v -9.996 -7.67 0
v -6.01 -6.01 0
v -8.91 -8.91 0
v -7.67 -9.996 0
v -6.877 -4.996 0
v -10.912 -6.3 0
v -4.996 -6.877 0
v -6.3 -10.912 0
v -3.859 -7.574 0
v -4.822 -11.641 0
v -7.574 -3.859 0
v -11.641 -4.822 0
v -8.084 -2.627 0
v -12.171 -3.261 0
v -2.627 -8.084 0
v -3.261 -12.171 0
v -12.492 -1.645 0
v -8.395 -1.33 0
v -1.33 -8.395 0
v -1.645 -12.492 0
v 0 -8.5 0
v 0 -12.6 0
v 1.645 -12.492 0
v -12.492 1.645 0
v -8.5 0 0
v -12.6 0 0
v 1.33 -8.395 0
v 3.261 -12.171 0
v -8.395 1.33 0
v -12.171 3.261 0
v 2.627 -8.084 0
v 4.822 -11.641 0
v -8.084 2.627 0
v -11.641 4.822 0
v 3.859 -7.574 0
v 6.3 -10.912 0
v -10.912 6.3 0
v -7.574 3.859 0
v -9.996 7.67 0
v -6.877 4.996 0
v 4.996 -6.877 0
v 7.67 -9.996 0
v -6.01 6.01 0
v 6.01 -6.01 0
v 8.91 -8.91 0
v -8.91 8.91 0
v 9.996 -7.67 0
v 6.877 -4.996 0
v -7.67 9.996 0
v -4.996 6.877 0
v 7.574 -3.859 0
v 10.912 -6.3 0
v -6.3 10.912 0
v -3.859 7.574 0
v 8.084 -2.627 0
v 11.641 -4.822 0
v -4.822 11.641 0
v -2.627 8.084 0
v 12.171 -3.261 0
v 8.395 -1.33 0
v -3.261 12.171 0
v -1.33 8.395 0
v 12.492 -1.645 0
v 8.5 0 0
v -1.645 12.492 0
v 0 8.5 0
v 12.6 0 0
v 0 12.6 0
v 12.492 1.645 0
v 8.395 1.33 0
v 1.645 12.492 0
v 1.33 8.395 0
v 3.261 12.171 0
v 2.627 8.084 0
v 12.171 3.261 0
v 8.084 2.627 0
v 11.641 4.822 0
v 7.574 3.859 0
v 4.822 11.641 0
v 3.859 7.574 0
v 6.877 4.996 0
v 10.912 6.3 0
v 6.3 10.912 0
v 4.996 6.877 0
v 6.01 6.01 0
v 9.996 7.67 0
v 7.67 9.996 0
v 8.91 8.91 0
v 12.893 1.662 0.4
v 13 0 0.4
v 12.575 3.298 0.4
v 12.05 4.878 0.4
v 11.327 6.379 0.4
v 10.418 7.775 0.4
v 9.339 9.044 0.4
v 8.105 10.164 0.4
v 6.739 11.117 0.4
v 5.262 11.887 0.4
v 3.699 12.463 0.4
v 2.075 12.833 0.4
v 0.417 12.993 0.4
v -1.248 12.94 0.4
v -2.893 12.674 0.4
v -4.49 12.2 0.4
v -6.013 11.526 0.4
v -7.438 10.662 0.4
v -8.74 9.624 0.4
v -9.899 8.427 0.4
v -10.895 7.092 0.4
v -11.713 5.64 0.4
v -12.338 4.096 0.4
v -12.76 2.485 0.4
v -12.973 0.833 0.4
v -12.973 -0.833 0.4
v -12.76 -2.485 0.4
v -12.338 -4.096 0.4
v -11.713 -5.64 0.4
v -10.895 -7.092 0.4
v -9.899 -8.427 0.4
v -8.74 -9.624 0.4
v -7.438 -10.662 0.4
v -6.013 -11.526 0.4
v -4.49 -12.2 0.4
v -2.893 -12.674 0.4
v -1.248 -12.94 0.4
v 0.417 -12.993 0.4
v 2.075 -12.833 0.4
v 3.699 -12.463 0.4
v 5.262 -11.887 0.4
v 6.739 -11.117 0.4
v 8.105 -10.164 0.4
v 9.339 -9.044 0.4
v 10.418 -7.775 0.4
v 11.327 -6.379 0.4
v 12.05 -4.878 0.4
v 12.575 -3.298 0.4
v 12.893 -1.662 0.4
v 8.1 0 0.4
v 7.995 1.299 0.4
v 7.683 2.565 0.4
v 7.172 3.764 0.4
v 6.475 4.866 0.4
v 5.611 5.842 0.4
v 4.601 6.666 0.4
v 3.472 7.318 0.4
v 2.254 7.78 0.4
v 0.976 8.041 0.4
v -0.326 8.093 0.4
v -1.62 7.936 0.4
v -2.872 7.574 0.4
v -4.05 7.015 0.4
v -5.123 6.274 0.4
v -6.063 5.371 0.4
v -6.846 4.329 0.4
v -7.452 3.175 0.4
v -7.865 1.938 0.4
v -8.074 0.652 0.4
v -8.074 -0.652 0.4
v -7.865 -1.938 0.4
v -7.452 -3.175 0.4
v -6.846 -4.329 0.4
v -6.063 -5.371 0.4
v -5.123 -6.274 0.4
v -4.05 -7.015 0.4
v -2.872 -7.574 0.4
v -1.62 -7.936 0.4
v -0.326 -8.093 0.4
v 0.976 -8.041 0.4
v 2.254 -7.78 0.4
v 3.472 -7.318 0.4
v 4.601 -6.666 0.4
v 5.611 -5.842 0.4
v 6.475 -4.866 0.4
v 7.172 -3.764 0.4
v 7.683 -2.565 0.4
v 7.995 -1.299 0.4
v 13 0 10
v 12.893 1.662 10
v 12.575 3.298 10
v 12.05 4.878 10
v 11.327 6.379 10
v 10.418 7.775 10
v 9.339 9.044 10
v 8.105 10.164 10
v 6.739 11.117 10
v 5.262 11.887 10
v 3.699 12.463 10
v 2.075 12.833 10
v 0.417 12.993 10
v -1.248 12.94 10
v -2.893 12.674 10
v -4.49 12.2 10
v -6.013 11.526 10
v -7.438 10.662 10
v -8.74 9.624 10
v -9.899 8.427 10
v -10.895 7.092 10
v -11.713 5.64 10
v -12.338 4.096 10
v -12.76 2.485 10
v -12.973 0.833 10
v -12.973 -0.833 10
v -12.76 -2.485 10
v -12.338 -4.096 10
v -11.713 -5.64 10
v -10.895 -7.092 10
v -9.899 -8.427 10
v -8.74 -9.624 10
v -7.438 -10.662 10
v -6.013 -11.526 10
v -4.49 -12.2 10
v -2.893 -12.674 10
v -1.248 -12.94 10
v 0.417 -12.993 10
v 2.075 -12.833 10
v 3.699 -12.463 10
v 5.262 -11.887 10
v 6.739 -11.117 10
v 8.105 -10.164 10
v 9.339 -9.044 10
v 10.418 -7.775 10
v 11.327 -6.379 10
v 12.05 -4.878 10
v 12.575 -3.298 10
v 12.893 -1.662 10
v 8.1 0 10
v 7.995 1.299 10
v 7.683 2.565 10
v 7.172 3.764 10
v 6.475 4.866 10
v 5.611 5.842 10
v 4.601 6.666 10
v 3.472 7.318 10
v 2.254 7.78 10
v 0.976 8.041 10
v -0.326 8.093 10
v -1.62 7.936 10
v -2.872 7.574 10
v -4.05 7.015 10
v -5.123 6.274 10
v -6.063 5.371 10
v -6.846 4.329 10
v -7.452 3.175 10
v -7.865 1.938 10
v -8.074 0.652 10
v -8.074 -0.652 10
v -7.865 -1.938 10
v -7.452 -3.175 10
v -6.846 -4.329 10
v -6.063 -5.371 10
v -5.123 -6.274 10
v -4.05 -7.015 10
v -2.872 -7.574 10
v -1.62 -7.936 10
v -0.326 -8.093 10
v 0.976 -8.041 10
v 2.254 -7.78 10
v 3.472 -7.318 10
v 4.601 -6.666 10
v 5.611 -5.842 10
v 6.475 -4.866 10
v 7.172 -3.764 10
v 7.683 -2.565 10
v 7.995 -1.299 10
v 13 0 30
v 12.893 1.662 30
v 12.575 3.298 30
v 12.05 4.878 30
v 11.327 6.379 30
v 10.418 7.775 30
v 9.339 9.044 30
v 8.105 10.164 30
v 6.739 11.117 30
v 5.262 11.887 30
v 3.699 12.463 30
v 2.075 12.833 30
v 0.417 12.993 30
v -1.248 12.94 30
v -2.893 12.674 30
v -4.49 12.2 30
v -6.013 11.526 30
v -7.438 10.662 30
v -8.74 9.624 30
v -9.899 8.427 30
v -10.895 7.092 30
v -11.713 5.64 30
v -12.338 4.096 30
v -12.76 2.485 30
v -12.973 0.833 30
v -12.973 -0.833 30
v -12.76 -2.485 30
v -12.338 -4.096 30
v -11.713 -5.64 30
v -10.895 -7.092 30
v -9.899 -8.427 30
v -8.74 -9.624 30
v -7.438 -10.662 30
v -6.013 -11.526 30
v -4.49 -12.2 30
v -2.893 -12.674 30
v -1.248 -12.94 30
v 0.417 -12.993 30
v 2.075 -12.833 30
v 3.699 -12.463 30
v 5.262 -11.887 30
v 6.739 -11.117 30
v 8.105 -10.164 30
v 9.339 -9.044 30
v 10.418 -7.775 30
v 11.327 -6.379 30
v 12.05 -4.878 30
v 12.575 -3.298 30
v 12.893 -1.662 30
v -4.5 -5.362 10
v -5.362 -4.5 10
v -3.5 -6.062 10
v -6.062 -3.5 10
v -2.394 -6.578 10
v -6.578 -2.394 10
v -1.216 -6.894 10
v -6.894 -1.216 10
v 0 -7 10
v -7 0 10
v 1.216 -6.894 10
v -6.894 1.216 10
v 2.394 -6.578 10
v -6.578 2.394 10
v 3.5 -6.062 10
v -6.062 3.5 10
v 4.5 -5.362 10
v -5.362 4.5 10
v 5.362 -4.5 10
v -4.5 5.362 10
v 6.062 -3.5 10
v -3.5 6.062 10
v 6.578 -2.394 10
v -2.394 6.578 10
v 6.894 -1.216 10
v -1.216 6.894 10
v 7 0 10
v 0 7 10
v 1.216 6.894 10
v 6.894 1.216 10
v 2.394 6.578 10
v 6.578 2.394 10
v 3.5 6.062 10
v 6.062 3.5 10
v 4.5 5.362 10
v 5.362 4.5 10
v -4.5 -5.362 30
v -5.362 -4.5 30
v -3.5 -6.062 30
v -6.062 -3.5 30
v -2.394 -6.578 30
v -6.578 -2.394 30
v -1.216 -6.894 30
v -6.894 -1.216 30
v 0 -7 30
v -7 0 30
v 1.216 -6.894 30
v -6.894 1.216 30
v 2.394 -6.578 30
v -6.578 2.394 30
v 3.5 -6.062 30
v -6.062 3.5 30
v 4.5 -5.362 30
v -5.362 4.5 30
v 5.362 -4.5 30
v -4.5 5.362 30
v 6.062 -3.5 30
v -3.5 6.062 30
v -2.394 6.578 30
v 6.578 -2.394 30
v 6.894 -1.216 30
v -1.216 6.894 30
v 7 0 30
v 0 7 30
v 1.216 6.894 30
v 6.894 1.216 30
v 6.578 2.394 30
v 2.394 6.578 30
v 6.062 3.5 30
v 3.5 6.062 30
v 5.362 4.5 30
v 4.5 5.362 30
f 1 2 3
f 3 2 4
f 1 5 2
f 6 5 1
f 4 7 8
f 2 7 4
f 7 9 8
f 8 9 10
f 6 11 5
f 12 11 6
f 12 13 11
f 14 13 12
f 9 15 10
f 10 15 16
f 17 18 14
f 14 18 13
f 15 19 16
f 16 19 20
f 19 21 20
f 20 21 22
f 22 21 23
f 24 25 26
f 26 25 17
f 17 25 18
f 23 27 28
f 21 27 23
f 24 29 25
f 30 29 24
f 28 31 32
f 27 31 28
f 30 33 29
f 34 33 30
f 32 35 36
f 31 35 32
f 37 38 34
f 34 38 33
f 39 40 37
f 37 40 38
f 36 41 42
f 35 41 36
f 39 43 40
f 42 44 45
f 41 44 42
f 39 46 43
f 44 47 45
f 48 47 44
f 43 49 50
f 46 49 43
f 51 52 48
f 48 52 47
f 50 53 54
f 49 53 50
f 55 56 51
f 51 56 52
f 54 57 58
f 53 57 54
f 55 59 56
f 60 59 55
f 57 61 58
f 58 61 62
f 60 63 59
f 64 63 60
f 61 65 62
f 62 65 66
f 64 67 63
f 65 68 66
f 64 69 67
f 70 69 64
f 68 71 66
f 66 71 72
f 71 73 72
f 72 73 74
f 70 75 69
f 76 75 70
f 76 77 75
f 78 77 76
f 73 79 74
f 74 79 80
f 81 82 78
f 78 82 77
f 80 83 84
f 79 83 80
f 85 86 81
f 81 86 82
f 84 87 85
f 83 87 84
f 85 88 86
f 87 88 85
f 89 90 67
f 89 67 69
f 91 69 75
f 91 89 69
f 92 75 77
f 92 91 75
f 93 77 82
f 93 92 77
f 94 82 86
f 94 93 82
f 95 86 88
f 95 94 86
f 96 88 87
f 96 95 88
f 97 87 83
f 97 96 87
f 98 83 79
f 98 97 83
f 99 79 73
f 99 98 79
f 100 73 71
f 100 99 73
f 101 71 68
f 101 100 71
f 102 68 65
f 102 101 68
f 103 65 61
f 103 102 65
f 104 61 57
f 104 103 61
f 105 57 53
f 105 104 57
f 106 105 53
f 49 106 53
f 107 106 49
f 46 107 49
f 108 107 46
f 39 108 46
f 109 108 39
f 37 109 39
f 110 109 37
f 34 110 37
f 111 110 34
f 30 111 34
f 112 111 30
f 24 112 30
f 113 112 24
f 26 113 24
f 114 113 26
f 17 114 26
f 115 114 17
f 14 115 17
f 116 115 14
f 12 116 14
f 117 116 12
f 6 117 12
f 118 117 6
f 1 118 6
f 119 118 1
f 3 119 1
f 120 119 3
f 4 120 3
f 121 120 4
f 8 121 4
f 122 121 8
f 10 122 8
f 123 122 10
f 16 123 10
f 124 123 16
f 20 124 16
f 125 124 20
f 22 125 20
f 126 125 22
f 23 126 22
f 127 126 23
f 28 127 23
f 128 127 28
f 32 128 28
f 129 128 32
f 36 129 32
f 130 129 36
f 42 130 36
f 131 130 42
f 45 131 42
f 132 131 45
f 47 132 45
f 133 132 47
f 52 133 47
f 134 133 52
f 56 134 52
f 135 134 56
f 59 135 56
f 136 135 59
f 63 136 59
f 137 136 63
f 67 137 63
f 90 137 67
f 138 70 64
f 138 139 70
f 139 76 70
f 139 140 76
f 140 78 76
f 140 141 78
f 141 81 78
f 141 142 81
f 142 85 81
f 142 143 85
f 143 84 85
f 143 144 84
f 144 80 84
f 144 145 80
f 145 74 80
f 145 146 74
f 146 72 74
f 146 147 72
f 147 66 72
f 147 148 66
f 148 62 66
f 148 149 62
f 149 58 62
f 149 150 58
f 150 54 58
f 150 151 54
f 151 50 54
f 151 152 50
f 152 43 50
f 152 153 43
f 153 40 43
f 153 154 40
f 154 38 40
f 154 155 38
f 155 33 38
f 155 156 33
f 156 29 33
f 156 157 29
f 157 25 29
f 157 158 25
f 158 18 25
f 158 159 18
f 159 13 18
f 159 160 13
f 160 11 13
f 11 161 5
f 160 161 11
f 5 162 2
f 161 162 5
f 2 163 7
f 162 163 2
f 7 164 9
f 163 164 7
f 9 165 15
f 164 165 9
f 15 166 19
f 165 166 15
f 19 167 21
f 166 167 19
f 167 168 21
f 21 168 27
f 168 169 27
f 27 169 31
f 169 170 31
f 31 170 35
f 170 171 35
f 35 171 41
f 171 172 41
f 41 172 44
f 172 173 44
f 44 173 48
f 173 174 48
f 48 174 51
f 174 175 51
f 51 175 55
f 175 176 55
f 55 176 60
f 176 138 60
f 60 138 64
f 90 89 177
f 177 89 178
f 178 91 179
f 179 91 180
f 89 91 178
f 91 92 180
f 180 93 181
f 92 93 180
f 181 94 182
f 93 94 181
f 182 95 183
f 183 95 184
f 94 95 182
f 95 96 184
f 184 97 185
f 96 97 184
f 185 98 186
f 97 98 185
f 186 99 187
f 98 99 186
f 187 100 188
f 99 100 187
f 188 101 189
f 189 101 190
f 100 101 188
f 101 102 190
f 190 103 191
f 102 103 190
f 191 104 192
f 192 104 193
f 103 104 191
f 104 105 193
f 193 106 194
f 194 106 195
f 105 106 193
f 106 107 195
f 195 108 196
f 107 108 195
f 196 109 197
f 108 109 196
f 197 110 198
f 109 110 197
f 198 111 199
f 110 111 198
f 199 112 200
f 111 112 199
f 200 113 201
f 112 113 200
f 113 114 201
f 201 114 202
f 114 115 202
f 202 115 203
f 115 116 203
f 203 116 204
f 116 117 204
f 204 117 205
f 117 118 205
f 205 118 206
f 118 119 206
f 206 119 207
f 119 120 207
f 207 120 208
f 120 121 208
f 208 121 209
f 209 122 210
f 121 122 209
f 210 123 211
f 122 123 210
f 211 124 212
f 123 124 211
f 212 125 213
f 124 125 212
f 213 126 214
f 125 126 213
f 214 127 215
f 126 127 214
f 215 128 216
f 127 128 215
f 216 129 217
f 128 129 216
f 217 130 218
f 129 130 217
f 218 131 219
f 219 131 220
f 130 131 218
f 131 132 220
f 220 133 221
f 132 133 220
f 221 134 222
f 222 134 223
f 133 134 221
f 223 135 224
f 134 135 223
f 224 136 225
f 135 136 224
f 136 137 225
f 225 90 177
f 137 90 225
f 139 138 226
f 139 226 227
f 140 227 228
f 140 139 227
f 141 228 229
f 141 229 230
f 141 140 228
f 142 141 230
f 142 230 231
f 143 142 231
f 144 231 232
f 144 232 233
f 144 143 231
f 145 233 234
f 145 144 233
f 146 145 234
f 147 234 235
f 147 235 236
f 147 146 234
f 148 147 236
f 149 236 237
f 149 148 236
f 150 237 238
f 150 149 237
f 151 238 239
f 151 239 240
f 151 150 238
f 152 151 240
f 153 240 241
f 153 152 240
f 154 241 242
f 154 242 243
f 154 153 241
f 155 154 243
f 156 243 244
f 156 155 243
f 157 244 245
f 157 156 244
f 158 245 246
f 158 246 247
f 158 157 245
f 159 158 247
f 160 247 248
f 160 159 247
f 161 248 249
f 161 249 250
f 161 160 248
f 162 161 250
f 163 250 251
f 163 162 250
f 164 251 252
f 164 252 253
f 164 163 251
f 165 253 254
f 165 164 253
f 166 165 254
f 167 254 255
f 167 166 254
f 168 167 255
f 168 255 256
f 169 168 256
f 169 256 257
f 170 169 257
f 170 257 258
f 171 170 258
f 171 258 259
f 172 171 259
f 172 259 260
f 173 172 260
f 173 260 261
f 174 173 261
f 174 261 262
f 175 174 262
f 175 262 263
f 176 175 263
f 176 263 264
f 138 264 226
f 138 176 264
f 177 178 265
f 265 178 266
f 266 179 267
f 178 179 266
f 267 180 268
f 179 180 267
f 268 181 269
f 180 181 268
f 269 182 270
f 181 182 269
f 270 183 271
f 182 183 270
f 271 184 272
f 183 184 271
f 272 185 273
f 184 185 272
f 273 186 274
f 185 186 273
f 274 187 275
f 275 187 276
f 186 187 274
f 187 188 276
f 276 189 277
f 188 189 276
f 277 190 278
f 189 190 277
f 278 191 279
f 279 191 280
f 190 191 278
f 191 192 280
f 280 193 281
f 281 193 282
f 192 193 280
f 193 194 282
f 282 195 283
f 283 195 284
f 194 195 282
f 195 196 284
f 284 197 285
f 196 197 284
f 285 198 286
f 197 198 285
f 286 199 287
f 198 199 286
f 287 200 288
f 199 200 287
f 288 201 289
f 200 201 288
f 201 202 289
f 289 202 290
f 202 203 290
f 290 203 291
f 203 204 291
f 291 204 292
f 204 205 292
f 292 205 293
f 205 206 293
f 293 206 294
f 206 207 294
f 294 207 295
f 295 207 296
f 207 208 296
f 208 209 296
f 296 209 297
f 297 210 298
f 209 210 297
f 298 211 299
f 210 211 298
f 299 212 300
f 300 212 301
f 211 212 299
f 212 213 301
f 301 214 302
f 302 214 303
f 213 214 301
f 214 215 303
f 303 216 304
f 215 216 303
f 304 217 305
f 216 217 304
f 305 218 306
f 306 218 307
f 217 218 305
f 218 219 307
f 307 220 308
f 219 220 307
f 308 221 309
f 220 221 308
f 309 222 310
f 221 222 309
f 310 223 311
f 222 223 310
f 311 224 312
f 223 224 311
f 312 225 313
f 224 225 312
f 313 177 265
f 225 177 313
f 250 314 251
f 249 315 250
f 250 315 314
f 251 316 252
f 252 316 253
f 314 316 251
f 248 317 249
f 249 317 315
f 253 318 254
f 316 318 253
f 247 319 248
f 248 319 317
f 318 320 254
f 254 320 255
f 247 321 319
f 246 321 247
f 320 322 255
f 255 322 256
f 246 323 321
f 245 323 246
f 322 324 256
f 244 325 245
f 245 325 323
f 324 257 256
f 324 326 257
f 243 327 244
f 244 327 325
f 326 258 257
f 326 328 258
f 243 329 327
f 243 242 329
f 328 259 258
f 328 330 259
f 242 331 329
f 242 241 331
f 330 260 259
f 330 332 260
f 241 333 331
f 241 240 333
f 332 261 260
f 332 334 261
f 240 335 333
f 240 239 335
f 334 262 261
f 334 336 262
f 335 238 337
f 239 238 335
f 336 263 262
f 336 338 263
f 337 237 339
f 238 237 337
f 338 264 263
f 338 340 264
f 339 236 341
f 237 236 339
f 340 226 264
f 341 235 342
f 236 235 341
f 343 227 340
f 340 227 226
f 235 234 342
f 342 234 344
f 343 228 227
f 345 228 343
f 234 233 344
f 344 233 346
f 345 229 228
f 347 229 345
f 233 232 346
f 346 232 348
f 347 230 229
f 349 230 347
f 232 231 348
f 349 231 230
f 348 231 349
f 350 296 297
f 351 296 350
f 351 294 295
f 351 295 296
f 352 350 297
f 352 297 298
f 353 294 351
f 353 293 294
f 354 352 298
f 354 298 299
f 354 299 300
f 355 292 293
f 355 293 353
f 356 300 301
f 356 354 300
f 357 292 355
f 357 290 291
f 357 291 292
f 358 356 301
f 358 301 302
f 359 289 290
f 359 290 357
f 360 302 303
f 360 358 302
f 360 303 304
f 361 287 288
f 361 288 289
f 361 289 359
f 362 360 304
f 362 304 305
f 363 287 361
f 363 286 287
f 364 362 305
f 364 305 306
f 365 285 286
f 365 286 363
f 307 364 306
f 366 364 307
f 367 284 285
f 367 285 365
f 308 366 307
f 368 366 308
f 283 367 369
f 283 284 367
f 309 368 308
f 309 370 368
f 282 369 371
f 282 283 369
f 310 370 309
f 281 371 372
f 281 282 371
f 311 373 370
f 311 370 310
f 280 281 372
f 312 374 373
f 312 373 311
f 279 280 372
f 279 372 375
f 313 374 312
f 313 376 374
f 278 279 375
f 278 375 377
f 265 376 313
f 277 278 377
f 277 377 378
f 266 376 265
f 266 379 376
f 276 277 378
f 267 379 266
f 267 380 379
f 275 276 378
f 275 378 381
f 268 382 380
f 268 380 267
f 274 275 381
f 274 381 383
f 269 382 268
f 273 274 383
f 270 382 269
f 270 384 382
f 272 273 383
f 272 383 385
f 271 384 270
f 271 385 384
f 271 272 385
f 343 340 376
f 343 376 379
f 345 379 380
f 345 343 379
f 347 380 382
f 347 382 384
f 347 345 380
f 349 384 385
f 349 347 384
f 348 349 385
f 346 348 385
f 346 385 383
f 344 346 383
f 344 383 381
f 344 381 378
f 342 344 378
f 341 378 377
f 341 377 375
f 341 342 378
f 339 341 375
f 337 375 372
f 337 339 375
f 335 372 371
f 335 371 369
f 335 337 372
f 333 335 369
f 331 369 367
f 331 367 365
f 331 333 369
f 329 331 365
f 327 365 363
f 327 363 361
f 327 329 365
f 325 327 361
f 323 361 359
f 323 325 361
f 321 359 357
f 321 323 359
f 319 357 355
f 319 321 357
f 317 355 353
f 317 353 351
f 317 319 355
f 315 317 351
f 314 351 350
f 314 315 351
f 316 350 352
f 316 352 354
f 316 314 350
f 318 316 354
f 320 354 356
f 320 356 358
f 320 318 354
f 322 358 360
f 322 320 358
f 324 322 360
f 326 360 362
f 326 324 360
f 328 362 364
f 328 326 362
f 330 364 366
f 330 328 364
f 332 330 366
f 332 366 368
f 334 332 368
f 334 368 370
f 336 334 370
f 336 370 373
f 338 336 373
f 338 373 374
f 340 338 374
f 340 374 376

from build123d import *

# Parameters (mm, degrees)
SKETCH_R        = 13
SKETCH_R_2      = 8.1
PAD_DEPTH       = 10
SKETCH001_R     = 13
SKETCH001_R_2   = 7
PAD001_DEPTH    = 20
CHAMFER_SIZE    = 0.4
CHAMFER001_SIZE = 0.4


with BuildPart() as part:
    # Sketch → Pad (new body)
    with BuildSketch(Plane.XY):
        Circle(SKETCH_R)
        Circle(SKETCH_R_2, mode=Mode.SUBTRACT)
    extrude(amount=PAD_DEPTH)

    # Sketch001 (on Face4 of Pad) → Pad001 (join)
    with BuildSketch(Plane.XY.offset(10)):
        Circle(SKETCH001_R)
        Circle(SKETCH001_R_2, mode=Mode.SUBTRACT)
    extrude(amount=PAD001_DEPTH)

    # Chamfer
    chamfer_edges = [part.edges().sort_by_distance(p)[0] for p in [
        (-8.1, 0, 0),
    ]]
    chamfer(chamfer_edges, length=CHAMFER_SIZE)

    # Chamfer001
    chamfer001_edges = [part.edges().sort_by_distance(p)[0] for p in [
        (-13, 0, 0),
    ]]
    chamfer(chamfer001_edges, length=CHAMFER001_SIZE)


solid = part.part
